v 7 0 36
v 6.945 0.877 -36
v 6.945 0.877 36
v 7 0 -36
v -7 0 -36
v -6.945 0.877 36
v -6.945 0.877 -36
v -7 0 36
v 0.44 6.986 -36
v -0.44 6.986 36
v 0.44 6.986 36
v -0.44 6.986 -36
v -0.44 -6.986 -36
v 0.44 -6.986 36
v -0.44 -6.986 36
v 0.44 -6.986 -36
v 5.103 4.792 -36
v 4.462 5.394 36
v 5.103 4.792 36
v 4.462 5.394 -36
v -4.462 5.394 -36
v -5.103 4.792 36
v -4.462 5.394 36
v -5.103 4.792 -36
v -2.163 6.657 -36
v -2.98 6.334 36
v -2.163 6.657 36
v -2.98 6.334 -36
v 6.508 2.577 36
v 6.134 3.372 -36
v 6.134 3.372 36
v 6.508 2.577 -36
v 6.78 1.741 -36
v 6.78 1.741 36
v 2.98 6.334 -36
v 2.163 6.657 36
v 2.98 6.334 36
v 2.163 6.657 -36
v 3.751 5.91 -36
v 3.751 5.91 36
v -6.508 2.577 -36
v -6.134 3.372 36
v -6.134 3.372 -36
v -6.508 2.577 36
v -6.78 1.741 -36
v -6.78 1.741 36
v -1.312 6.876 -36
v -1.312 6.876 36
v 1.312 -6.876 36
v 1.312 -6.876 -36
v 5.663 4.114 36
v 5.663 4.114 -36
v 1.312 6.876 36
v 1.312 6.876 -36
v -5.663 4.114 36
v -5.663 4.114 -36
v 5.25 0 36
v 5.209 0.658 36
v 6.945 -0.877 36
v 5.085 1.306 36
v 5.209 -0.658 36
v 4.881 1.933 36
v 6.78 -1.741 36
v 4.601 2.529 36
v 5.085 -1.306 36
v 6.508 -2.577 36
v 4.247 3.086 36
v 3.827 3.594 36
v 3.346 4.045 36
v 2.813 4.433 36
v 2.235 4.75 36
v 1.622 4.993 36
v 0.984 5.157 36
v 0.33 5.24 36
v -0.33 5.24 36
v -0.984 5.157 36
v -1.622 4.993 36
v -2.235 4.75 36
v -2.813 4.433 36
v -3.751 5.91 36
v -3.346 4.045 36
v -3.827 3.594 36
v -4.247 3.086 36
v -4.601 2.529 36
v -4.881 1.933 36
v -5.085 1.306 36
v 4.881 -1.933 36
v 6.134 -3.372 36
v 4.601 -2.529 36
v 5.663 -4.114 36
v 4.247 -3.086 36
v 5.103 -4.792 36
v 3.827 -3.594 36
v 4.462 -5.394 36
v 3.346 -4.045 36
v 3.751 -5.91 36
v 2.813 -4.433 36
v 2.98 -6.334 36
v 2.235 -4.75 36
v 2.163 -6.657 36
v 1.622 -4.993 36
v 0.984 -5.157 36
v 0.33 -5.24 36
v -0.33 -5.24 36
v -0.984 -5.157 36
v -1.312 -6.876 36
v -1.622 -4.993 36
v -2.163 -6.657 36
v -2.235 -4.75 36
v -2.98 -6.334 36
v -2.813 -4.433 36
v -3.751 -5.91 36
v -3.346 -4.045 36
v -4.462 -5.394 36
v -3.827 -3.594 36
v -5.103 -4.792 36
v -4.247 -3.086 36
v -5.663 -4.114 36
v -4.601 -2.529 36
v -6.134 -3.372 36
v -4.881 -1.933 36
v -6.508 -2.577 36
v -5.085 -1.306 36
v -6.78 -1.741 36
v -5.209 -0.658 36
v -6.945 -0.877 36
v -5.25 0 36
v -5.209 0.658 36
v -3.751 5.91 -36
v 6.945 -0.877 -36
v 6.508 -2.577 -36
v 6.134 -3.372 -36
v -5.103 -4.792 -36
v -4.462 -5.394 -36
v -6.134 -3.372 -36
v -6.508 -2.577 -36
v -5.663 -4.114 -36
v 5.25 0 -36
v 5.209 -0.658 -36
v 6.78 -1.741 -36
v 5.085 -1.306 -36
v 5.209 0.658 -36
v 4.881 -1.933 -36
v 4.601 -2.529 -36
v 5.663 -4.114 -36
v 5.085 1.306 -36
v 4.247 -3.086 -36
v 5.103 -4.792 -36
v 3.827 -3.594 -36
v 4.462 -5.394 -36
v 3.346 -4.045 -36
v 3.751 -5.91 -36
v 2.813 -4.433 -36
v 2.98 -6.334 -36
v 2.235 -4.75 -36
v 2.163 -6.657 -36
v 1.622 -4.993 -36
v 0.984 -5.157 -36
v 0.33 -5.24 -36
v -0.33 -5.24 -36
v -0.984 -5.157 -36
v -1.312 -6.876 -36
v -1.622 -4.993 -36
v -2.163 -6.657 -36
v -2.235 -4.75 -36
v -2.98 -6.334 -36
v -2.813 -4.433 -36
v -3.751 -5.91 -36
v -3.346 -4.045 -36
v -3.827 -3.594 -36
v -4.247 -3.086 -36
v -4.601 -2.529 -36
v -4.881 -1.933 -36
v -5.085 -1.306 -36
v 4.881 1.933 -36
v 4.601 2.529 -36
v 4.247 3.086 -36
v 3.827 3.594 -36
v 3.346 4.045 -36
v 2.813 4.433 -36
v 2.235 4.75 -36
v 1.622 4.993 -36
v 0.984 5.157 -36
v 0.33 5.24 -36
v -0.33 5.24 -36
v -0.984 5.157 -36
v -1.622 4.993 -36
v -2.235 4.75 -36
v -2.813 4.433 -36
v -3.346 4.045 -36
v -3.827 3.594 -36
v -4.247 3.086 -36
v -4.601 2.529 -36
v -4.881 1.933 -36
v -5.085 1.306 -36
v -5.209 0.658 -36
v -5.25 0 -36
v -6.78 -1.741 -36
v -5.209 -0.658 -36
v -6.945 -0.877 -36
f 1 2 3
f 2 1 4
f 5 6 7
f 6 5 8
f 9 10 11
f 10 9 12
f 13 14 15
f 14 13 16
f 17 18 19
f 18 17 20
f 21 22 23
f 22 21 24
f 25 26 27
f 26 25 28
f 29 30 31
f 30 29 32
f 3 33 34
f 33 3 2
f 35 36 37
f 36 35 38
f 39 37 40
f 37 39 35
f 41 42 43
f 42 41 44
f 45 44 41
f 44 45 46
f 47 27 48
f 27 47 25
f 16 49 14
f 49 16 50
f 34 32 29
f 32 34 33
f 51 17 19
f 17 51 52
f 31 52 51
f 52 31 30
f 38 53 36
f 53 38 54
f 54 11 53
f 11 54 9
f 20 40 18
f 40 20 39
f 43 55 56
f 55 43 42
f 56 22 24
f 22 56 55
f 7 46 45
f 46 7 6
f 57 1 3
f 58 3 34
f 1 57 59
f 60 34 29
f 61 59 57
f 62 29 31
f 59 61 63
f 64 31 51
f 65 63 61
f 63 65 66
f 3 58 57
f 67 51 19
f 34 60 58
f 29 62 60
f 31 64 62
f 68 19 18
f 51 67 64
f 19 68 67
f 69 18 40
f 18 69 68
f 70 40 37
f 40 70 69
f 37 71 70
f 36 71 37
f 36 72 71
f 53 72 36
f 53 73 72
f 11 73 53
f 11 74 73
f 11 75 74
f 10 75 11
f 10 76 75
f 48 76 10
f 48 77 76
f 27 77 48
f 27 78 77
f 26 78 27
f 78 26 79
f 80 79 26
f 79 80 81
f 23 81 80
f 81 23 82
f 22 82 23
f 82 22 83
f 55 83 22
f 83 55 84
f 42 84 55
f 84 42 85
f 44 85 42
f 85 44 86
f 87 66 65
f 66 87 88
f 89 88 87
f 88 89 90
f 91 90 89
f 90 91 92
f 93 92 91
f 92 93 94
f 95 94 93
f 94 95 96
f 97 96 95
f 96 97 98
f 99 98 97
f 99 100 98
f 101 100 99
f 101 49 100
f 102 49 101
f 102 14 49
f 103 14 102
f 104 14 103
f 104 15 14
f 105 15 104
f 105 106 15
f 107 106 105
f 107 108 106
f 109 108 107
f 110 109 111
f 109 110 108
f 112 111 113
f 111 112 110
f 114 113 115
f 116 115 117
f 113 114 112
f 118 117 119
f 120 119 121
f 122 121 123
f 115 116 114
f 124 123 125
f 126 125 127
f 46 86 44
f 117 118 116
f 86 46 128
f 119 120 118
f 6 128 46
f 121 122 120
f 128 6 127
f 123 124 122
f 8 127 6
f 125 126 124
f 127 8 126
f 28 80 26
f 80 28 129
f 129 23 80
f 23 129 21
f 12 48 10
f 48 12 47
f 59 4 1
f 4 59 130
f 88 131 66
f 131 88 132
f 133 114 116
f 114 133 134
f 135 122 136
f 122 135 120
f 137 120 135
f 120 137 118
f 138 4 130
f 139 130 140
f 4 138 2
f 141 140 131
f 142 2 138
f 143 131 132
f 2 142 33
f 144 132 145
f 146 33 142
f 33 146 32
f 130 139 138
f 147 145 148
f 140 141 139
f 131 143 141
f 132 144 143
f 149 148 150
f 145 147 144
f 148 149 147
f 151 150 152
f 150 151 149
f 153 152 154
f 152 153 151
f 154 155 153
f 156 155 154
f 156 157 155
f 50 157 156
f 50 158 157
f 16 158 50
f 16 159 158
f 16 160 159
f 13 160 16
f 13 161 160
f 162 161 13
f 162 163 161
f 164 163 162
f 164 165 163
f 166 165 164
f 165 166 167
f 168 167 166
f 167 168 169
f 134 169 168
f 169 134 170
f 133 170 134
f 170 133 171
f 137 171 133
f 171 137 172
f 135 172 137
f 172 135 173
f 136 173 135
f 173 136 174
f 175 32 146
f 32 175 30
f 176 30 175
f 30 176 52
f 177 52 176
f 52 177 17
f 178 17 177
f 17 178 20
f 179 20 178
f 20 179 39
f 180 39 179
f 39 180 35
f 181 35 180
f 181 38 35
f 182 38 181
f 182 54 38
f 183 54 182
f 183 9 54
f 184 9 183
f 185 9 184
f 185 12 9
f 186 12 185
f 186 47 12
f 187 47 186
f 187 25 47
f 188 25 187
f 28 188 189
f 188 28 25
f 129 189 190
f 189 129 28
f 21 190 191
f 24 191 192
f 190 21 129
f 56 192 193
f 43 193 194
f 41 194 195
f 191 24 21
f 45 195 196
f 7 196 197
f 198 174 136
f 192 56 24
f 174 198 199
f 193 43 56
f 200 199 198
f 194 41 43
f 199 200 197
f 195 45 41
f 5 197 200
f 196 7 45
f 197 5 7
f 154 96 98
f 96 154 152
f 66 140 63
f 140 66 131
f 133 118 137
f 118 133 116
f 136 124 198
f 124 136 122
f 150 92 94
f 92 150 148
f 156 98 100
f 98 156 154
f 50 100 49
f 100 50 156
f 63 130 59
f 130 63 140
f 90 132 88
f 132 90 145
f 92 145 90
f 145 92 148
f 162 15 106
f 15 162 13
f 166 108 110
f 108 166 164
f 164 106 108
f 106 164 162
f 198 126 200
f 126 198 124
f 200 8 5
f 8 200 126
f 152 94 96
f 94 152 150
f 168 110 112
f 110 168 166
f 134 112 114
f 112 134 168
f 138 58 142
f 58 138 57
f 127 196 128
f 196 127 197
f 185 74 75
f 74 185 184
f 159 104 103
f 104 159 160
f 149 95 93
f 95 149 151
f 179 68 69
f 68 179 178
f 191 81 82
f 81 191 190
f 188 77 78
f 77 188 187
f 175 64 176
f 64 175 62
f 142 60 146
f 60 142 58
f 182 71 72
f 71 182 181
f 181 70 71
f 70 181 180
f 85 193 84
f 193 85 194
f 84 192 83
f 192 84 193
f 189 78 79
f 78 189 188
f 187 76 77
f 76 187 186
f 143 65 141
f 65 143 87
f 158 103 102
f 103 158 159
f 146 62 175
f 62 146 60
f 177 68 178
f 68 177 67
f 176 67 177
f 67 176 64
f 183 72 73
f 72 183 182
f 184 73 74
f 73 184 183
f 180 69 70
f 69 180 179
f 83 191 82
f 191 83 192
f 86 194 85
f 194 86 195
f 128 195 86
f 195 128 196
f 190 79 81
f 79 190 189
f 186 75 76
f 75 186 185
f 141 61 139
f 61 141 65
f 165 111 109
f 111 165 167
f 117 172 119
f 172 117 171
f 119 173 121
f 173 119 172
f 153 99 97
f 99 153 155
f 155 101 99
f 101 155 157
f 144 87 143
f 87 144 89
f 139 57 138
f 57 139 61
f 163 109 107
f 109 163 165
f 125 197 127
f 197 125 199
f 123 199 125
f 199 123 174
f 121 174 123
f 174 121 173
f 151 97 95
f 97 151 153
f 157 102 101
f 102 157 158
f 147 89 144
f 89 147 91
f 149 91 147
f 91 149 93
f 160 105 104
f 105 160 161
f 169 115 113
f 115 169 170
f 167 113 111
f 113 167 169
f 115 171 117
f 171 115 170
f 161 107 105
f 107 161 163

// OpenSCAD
$fn = 50;


difference() {
	union() {
		translate(v = [0, 0, -36.0000000000]) {
			cylinder(h = 72, r = 7.0000000000);
		}
	}
	union() {
		translate(v = [0, 0, -100.0000000000]) {
			cylinder(h = 200, r = 5.2500000000);
		}
	}
}
